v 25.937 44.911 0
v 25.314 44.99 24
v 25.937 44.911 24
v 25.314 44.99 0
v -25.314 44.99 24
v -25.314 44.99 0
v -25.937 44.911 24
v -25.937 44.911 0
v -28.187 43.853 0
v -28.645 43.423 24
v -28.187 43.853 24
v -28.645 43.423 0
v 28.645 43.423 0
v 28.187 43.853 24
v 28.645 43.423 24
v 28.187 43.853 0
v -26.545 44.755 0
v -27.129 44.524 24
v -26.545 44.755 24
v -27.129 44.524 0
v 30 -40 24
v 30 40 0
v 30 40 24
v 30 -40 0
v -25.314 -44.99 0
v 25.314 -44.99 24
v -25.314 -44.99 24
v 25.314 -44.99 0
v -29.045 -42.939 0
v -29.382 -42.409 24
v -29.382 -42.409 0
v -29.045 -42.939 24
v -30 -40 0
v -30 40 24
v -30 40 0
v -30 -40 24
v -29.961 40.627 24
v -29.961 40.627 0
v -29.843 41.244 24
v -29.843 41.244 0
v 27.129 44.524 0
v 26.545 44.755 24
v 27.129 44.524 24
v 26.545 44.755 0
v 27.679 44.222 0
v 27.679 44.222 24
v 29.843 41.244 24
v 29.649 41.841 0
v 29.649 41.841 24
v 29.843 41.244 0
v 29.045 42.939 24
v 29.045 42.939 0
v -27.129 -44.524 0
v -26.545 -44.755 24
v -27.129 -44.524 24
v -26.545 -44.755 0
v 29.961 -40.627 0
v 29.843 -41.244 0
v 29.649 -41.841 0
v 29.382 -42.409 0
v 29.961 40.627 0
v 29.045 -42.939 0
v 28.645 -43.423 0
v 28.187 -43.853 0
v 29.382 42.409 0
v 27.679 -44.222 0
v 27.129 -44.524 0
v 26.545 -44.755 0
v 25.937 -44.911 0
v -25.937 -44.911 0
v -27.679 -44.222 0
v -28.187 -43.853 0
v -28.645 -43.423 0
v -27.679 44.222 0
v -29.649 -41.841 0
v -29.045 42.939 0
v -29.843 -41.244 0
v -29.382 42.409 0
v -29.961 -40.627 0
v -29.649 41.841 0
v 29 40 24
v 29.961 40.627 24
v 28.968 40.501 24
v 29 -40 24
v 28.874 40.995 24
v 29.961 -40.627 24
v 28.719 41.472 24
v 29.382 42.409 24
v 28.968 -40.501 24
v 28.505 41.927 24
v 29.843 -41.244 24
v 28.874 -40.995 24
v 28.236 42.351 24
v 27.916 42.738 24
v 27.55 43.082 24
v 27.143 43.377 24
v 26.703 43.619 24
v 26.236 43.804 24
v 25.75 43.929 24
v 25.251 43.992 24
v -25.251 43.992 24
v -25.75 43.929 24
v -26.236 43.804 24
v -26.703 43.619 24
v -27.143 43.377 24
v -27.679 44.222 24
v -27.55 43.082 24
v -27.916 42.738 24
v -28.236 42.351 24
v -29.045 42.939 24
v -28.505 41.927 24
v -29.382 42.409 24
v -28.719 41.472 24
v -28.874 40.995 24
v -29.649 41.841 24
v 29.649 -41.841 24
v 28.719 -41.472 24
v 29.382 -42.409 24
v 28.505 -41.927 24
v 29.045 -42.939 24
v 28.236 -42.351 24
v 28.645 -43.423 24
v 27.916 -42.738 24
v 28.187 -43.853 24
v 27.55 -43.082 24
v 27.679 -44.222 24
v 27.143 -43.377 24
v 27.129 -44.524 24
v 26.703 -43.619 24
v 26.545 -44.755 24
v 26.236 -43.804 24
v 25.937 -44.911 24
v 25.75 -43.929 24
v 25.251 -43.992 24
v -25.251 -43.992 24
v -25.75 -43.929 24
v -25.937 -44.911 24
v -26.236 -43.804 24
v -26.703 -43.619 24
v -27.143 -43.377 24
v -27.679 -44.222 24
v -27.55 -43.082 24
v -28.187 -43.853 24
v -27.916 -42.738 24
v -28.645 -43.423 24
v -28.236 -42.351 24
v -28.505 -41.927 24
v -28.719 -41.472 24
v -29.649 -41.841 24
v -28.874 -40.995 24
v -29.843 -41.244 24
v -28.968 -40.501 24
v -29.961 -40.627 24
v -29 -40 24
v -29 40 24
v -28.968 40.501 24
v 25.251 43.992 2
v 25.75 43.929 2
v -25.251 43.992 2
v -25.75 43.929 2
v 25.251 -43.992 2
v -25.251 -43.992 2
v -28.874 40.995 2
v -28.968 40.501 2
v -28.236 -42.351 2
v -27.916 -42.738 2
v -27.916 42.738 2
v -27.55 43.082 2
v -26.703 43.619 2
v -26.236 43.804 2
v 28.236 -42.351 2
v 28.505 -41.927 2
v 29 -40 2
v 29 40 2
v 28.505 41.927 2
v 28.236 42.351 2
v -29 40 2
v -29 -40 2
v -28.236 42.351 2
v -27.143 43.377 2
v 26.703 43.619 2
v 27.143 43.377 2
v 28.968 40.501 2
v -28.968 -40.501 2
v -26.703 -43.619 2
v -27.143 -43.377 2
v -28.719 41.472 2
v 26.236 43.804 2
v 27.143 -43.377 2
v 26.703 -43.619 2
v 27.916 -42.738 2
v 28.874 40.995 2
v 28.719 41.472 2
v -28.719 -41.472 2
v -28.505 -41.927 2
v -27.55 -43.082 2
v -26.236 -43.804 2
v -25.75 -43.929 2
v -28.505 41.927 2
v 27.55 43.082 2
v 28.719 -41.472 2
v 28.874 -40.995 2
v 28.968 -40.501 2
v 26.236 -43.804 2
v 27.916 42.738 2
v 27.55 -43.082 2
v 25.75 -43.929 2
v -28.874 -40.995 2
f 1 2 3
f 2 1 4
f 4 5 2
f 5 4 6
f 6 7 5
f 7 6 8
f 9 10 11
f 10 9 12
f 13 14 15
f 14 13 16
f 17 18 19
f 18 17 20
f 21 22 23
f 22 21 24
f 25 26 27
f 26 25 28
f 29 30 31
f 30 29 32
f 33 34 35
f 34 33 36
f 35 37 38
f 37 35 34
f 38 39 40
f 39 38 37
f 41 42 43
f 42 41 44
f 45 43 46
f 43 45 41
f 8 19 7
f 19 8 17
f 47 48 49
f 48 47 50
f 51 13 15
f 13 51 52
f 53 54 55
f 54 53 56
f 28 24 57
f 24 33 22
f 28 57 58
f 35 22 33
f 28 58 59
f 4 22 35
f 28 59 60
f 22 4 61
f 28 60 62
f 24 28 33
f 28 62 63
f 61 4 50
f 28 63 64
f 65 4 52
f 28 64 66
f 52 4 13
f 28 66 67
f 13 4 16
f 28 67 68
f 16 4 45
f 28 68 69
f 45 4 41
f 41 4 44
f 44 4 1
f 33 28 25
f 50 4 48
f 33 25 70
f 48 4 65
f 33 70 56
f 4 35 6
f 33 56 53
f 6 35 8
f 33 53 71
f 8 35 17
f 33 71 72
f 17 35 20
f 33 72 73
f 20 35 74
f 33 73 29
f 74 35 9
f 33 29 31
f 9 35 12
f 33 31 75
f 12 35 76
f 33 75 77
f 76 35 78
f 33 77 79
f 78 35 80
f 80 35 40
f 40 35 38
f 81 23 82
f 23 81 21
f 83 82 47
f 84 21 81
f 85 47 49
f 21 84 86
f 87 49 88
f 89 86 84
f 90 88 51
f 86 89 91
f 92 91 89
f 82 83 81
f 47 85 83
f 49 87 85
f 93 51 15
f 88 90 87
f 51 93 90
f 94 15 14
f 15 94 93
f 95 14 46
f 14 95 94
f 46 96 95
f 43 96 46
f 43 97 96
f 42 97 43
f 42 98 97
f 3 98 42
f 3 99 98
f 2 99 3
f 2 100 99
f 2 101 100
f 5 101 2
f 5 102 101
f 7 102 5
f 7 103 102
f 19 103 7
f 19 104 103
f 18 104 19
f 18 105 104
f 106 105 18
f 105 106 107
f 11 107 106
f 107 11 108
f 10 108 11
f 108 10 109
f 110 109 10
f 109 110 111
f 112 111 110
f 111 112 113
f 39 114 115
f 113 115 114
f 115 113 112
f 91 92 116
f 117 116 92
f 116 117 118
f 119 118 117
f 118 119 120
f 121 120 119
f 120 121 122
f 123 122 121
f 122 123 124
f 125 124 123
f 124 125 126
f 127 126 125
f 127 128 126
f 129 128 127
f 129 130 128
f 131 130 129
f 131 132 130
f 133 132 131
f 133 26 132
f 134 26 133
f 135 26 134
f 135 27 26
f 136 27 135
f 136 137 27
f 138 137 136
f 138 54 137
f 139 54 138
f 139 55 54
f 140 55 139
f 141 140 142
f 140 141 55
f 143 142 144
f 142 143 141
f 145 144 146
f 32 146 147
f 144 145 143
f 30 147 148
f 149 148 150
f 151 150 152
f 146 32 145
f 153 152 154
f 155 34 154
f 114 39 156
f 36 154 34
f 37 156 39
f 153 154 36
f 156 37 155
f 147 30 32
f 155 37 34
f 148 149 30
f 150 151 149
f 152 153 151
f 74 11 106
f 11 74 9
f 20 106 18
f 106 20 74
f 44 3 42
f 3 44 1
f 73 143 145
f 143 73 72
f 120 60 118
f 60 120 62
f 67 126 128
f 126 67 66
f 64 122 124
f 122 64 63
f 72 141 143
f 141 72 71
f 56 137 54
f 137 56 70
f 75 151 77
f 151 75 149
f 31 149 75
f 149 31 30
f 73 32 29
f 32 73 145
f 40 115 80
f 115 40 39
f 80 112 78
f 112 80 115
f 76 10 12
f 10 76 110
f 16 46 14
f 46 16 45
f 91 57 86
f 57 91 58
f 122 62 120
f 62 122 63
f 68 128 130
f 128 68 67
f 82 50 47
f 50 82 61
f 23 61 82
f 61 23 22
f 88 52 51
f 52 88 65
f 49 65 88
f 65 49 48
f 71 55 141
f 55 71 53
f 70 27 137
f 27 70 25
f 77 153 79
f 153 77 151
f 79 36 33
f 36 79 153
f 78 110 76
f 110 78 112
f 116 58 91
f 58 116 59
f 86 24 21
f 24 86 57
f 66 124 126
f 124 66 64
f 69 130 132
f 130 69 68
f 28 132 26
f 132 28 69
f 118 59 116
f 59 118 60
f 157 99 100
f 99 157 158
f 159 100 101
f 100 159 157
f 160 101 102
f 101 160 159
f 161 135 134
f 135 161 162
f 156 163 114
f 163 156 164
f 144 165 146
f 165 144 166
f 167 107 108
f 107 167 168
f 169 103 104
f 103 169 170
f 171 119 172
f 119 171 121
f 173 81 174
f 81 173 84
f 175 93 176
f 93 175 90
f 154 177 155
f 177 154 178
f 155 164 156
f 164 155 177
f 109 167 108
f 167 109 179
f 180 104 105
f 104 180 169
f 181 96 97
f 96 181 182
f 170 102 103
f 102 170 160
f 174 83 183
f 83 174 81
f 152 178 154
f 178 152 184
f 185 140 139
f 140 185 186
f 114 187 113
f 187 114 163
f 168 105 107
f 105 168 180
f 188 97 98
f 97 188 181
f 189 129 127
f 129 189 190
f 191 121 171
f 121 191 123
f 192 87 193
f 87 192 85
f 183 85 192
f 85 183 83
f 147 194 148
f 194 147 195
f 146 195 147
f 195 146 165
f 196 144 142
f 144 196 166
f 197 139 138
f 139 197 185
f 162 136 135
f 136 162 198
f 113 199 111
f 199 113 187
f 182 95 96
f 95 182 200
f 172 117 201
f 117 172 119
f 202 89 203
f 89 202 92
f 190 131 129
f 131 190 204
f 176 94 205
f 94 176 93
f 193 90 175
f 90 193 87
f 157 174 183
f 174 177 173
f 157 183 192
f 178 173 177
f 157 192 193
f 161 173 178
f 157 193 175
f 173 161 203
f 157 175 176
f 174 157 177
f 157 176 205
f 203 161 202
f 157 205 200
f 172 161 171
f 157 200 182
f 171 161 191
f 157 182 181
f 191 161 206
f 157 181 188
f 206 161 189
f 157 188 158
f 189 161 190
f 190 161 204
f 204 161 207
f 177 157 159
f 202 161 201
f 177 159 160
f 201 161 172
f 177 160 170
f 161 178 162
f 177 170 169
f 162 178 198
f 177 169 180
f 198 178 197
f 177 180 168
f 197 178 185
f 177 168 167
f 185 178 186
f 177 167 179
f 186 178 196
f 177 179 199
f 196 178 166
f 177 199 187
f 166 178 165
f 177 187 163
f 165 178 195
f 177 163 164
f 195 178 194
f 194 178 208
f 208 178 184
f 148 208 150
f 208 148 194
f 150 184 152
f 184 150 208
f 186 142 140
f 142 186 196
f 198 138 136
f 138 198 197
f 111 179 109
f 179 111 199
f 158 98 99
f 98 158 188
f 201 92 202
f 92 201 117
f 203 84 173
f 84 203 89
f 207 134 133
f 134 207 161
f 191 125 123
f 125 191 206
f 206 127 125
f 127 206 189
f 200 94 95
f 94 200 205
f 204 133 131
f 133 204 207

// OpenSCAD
$fn = 50;


difference() {
	union() {
		hull() {
			translate(v = [-25.0000000000, 40.0000000000, 0]) {
				cylinder(h = 24, r = 5);
			}
			translate(v = [25.0000000000, 40.0000000000, 0]) {
				cylinder(h = 24, r = 5);
			}
			translate(v = [-25.0000000000, -40.0000000000, 0]) {
				cylinder(h = 24, r = 5);
			}
			translate(v = [25.0000000000, -40.0000000000, 0]) {
				cylinder(h = 24, r = 5);
			}
		}
	}
	union() {
		translate(v = [0, 0, 2]) {
			hull() {
				translate(v = [-25.0000000000, 40.0000000000, 0]) {
					cylinder(h = 22, r = 4);
				}
				translate(v = [25.0000000000, 40.0000000000, 0]) {
					cylinder(h = 22, r = 4);
				}
				translate(v = [-25.0000000000, -40.0000000000, 0]) {
					cylinder(h = 22, r = 4);
				}
				translate(v = [25.0000000000, -40.0000000000, 0]) {
					cylinder(h = 22, r = 4);
				}
			}
		}
	}
}
